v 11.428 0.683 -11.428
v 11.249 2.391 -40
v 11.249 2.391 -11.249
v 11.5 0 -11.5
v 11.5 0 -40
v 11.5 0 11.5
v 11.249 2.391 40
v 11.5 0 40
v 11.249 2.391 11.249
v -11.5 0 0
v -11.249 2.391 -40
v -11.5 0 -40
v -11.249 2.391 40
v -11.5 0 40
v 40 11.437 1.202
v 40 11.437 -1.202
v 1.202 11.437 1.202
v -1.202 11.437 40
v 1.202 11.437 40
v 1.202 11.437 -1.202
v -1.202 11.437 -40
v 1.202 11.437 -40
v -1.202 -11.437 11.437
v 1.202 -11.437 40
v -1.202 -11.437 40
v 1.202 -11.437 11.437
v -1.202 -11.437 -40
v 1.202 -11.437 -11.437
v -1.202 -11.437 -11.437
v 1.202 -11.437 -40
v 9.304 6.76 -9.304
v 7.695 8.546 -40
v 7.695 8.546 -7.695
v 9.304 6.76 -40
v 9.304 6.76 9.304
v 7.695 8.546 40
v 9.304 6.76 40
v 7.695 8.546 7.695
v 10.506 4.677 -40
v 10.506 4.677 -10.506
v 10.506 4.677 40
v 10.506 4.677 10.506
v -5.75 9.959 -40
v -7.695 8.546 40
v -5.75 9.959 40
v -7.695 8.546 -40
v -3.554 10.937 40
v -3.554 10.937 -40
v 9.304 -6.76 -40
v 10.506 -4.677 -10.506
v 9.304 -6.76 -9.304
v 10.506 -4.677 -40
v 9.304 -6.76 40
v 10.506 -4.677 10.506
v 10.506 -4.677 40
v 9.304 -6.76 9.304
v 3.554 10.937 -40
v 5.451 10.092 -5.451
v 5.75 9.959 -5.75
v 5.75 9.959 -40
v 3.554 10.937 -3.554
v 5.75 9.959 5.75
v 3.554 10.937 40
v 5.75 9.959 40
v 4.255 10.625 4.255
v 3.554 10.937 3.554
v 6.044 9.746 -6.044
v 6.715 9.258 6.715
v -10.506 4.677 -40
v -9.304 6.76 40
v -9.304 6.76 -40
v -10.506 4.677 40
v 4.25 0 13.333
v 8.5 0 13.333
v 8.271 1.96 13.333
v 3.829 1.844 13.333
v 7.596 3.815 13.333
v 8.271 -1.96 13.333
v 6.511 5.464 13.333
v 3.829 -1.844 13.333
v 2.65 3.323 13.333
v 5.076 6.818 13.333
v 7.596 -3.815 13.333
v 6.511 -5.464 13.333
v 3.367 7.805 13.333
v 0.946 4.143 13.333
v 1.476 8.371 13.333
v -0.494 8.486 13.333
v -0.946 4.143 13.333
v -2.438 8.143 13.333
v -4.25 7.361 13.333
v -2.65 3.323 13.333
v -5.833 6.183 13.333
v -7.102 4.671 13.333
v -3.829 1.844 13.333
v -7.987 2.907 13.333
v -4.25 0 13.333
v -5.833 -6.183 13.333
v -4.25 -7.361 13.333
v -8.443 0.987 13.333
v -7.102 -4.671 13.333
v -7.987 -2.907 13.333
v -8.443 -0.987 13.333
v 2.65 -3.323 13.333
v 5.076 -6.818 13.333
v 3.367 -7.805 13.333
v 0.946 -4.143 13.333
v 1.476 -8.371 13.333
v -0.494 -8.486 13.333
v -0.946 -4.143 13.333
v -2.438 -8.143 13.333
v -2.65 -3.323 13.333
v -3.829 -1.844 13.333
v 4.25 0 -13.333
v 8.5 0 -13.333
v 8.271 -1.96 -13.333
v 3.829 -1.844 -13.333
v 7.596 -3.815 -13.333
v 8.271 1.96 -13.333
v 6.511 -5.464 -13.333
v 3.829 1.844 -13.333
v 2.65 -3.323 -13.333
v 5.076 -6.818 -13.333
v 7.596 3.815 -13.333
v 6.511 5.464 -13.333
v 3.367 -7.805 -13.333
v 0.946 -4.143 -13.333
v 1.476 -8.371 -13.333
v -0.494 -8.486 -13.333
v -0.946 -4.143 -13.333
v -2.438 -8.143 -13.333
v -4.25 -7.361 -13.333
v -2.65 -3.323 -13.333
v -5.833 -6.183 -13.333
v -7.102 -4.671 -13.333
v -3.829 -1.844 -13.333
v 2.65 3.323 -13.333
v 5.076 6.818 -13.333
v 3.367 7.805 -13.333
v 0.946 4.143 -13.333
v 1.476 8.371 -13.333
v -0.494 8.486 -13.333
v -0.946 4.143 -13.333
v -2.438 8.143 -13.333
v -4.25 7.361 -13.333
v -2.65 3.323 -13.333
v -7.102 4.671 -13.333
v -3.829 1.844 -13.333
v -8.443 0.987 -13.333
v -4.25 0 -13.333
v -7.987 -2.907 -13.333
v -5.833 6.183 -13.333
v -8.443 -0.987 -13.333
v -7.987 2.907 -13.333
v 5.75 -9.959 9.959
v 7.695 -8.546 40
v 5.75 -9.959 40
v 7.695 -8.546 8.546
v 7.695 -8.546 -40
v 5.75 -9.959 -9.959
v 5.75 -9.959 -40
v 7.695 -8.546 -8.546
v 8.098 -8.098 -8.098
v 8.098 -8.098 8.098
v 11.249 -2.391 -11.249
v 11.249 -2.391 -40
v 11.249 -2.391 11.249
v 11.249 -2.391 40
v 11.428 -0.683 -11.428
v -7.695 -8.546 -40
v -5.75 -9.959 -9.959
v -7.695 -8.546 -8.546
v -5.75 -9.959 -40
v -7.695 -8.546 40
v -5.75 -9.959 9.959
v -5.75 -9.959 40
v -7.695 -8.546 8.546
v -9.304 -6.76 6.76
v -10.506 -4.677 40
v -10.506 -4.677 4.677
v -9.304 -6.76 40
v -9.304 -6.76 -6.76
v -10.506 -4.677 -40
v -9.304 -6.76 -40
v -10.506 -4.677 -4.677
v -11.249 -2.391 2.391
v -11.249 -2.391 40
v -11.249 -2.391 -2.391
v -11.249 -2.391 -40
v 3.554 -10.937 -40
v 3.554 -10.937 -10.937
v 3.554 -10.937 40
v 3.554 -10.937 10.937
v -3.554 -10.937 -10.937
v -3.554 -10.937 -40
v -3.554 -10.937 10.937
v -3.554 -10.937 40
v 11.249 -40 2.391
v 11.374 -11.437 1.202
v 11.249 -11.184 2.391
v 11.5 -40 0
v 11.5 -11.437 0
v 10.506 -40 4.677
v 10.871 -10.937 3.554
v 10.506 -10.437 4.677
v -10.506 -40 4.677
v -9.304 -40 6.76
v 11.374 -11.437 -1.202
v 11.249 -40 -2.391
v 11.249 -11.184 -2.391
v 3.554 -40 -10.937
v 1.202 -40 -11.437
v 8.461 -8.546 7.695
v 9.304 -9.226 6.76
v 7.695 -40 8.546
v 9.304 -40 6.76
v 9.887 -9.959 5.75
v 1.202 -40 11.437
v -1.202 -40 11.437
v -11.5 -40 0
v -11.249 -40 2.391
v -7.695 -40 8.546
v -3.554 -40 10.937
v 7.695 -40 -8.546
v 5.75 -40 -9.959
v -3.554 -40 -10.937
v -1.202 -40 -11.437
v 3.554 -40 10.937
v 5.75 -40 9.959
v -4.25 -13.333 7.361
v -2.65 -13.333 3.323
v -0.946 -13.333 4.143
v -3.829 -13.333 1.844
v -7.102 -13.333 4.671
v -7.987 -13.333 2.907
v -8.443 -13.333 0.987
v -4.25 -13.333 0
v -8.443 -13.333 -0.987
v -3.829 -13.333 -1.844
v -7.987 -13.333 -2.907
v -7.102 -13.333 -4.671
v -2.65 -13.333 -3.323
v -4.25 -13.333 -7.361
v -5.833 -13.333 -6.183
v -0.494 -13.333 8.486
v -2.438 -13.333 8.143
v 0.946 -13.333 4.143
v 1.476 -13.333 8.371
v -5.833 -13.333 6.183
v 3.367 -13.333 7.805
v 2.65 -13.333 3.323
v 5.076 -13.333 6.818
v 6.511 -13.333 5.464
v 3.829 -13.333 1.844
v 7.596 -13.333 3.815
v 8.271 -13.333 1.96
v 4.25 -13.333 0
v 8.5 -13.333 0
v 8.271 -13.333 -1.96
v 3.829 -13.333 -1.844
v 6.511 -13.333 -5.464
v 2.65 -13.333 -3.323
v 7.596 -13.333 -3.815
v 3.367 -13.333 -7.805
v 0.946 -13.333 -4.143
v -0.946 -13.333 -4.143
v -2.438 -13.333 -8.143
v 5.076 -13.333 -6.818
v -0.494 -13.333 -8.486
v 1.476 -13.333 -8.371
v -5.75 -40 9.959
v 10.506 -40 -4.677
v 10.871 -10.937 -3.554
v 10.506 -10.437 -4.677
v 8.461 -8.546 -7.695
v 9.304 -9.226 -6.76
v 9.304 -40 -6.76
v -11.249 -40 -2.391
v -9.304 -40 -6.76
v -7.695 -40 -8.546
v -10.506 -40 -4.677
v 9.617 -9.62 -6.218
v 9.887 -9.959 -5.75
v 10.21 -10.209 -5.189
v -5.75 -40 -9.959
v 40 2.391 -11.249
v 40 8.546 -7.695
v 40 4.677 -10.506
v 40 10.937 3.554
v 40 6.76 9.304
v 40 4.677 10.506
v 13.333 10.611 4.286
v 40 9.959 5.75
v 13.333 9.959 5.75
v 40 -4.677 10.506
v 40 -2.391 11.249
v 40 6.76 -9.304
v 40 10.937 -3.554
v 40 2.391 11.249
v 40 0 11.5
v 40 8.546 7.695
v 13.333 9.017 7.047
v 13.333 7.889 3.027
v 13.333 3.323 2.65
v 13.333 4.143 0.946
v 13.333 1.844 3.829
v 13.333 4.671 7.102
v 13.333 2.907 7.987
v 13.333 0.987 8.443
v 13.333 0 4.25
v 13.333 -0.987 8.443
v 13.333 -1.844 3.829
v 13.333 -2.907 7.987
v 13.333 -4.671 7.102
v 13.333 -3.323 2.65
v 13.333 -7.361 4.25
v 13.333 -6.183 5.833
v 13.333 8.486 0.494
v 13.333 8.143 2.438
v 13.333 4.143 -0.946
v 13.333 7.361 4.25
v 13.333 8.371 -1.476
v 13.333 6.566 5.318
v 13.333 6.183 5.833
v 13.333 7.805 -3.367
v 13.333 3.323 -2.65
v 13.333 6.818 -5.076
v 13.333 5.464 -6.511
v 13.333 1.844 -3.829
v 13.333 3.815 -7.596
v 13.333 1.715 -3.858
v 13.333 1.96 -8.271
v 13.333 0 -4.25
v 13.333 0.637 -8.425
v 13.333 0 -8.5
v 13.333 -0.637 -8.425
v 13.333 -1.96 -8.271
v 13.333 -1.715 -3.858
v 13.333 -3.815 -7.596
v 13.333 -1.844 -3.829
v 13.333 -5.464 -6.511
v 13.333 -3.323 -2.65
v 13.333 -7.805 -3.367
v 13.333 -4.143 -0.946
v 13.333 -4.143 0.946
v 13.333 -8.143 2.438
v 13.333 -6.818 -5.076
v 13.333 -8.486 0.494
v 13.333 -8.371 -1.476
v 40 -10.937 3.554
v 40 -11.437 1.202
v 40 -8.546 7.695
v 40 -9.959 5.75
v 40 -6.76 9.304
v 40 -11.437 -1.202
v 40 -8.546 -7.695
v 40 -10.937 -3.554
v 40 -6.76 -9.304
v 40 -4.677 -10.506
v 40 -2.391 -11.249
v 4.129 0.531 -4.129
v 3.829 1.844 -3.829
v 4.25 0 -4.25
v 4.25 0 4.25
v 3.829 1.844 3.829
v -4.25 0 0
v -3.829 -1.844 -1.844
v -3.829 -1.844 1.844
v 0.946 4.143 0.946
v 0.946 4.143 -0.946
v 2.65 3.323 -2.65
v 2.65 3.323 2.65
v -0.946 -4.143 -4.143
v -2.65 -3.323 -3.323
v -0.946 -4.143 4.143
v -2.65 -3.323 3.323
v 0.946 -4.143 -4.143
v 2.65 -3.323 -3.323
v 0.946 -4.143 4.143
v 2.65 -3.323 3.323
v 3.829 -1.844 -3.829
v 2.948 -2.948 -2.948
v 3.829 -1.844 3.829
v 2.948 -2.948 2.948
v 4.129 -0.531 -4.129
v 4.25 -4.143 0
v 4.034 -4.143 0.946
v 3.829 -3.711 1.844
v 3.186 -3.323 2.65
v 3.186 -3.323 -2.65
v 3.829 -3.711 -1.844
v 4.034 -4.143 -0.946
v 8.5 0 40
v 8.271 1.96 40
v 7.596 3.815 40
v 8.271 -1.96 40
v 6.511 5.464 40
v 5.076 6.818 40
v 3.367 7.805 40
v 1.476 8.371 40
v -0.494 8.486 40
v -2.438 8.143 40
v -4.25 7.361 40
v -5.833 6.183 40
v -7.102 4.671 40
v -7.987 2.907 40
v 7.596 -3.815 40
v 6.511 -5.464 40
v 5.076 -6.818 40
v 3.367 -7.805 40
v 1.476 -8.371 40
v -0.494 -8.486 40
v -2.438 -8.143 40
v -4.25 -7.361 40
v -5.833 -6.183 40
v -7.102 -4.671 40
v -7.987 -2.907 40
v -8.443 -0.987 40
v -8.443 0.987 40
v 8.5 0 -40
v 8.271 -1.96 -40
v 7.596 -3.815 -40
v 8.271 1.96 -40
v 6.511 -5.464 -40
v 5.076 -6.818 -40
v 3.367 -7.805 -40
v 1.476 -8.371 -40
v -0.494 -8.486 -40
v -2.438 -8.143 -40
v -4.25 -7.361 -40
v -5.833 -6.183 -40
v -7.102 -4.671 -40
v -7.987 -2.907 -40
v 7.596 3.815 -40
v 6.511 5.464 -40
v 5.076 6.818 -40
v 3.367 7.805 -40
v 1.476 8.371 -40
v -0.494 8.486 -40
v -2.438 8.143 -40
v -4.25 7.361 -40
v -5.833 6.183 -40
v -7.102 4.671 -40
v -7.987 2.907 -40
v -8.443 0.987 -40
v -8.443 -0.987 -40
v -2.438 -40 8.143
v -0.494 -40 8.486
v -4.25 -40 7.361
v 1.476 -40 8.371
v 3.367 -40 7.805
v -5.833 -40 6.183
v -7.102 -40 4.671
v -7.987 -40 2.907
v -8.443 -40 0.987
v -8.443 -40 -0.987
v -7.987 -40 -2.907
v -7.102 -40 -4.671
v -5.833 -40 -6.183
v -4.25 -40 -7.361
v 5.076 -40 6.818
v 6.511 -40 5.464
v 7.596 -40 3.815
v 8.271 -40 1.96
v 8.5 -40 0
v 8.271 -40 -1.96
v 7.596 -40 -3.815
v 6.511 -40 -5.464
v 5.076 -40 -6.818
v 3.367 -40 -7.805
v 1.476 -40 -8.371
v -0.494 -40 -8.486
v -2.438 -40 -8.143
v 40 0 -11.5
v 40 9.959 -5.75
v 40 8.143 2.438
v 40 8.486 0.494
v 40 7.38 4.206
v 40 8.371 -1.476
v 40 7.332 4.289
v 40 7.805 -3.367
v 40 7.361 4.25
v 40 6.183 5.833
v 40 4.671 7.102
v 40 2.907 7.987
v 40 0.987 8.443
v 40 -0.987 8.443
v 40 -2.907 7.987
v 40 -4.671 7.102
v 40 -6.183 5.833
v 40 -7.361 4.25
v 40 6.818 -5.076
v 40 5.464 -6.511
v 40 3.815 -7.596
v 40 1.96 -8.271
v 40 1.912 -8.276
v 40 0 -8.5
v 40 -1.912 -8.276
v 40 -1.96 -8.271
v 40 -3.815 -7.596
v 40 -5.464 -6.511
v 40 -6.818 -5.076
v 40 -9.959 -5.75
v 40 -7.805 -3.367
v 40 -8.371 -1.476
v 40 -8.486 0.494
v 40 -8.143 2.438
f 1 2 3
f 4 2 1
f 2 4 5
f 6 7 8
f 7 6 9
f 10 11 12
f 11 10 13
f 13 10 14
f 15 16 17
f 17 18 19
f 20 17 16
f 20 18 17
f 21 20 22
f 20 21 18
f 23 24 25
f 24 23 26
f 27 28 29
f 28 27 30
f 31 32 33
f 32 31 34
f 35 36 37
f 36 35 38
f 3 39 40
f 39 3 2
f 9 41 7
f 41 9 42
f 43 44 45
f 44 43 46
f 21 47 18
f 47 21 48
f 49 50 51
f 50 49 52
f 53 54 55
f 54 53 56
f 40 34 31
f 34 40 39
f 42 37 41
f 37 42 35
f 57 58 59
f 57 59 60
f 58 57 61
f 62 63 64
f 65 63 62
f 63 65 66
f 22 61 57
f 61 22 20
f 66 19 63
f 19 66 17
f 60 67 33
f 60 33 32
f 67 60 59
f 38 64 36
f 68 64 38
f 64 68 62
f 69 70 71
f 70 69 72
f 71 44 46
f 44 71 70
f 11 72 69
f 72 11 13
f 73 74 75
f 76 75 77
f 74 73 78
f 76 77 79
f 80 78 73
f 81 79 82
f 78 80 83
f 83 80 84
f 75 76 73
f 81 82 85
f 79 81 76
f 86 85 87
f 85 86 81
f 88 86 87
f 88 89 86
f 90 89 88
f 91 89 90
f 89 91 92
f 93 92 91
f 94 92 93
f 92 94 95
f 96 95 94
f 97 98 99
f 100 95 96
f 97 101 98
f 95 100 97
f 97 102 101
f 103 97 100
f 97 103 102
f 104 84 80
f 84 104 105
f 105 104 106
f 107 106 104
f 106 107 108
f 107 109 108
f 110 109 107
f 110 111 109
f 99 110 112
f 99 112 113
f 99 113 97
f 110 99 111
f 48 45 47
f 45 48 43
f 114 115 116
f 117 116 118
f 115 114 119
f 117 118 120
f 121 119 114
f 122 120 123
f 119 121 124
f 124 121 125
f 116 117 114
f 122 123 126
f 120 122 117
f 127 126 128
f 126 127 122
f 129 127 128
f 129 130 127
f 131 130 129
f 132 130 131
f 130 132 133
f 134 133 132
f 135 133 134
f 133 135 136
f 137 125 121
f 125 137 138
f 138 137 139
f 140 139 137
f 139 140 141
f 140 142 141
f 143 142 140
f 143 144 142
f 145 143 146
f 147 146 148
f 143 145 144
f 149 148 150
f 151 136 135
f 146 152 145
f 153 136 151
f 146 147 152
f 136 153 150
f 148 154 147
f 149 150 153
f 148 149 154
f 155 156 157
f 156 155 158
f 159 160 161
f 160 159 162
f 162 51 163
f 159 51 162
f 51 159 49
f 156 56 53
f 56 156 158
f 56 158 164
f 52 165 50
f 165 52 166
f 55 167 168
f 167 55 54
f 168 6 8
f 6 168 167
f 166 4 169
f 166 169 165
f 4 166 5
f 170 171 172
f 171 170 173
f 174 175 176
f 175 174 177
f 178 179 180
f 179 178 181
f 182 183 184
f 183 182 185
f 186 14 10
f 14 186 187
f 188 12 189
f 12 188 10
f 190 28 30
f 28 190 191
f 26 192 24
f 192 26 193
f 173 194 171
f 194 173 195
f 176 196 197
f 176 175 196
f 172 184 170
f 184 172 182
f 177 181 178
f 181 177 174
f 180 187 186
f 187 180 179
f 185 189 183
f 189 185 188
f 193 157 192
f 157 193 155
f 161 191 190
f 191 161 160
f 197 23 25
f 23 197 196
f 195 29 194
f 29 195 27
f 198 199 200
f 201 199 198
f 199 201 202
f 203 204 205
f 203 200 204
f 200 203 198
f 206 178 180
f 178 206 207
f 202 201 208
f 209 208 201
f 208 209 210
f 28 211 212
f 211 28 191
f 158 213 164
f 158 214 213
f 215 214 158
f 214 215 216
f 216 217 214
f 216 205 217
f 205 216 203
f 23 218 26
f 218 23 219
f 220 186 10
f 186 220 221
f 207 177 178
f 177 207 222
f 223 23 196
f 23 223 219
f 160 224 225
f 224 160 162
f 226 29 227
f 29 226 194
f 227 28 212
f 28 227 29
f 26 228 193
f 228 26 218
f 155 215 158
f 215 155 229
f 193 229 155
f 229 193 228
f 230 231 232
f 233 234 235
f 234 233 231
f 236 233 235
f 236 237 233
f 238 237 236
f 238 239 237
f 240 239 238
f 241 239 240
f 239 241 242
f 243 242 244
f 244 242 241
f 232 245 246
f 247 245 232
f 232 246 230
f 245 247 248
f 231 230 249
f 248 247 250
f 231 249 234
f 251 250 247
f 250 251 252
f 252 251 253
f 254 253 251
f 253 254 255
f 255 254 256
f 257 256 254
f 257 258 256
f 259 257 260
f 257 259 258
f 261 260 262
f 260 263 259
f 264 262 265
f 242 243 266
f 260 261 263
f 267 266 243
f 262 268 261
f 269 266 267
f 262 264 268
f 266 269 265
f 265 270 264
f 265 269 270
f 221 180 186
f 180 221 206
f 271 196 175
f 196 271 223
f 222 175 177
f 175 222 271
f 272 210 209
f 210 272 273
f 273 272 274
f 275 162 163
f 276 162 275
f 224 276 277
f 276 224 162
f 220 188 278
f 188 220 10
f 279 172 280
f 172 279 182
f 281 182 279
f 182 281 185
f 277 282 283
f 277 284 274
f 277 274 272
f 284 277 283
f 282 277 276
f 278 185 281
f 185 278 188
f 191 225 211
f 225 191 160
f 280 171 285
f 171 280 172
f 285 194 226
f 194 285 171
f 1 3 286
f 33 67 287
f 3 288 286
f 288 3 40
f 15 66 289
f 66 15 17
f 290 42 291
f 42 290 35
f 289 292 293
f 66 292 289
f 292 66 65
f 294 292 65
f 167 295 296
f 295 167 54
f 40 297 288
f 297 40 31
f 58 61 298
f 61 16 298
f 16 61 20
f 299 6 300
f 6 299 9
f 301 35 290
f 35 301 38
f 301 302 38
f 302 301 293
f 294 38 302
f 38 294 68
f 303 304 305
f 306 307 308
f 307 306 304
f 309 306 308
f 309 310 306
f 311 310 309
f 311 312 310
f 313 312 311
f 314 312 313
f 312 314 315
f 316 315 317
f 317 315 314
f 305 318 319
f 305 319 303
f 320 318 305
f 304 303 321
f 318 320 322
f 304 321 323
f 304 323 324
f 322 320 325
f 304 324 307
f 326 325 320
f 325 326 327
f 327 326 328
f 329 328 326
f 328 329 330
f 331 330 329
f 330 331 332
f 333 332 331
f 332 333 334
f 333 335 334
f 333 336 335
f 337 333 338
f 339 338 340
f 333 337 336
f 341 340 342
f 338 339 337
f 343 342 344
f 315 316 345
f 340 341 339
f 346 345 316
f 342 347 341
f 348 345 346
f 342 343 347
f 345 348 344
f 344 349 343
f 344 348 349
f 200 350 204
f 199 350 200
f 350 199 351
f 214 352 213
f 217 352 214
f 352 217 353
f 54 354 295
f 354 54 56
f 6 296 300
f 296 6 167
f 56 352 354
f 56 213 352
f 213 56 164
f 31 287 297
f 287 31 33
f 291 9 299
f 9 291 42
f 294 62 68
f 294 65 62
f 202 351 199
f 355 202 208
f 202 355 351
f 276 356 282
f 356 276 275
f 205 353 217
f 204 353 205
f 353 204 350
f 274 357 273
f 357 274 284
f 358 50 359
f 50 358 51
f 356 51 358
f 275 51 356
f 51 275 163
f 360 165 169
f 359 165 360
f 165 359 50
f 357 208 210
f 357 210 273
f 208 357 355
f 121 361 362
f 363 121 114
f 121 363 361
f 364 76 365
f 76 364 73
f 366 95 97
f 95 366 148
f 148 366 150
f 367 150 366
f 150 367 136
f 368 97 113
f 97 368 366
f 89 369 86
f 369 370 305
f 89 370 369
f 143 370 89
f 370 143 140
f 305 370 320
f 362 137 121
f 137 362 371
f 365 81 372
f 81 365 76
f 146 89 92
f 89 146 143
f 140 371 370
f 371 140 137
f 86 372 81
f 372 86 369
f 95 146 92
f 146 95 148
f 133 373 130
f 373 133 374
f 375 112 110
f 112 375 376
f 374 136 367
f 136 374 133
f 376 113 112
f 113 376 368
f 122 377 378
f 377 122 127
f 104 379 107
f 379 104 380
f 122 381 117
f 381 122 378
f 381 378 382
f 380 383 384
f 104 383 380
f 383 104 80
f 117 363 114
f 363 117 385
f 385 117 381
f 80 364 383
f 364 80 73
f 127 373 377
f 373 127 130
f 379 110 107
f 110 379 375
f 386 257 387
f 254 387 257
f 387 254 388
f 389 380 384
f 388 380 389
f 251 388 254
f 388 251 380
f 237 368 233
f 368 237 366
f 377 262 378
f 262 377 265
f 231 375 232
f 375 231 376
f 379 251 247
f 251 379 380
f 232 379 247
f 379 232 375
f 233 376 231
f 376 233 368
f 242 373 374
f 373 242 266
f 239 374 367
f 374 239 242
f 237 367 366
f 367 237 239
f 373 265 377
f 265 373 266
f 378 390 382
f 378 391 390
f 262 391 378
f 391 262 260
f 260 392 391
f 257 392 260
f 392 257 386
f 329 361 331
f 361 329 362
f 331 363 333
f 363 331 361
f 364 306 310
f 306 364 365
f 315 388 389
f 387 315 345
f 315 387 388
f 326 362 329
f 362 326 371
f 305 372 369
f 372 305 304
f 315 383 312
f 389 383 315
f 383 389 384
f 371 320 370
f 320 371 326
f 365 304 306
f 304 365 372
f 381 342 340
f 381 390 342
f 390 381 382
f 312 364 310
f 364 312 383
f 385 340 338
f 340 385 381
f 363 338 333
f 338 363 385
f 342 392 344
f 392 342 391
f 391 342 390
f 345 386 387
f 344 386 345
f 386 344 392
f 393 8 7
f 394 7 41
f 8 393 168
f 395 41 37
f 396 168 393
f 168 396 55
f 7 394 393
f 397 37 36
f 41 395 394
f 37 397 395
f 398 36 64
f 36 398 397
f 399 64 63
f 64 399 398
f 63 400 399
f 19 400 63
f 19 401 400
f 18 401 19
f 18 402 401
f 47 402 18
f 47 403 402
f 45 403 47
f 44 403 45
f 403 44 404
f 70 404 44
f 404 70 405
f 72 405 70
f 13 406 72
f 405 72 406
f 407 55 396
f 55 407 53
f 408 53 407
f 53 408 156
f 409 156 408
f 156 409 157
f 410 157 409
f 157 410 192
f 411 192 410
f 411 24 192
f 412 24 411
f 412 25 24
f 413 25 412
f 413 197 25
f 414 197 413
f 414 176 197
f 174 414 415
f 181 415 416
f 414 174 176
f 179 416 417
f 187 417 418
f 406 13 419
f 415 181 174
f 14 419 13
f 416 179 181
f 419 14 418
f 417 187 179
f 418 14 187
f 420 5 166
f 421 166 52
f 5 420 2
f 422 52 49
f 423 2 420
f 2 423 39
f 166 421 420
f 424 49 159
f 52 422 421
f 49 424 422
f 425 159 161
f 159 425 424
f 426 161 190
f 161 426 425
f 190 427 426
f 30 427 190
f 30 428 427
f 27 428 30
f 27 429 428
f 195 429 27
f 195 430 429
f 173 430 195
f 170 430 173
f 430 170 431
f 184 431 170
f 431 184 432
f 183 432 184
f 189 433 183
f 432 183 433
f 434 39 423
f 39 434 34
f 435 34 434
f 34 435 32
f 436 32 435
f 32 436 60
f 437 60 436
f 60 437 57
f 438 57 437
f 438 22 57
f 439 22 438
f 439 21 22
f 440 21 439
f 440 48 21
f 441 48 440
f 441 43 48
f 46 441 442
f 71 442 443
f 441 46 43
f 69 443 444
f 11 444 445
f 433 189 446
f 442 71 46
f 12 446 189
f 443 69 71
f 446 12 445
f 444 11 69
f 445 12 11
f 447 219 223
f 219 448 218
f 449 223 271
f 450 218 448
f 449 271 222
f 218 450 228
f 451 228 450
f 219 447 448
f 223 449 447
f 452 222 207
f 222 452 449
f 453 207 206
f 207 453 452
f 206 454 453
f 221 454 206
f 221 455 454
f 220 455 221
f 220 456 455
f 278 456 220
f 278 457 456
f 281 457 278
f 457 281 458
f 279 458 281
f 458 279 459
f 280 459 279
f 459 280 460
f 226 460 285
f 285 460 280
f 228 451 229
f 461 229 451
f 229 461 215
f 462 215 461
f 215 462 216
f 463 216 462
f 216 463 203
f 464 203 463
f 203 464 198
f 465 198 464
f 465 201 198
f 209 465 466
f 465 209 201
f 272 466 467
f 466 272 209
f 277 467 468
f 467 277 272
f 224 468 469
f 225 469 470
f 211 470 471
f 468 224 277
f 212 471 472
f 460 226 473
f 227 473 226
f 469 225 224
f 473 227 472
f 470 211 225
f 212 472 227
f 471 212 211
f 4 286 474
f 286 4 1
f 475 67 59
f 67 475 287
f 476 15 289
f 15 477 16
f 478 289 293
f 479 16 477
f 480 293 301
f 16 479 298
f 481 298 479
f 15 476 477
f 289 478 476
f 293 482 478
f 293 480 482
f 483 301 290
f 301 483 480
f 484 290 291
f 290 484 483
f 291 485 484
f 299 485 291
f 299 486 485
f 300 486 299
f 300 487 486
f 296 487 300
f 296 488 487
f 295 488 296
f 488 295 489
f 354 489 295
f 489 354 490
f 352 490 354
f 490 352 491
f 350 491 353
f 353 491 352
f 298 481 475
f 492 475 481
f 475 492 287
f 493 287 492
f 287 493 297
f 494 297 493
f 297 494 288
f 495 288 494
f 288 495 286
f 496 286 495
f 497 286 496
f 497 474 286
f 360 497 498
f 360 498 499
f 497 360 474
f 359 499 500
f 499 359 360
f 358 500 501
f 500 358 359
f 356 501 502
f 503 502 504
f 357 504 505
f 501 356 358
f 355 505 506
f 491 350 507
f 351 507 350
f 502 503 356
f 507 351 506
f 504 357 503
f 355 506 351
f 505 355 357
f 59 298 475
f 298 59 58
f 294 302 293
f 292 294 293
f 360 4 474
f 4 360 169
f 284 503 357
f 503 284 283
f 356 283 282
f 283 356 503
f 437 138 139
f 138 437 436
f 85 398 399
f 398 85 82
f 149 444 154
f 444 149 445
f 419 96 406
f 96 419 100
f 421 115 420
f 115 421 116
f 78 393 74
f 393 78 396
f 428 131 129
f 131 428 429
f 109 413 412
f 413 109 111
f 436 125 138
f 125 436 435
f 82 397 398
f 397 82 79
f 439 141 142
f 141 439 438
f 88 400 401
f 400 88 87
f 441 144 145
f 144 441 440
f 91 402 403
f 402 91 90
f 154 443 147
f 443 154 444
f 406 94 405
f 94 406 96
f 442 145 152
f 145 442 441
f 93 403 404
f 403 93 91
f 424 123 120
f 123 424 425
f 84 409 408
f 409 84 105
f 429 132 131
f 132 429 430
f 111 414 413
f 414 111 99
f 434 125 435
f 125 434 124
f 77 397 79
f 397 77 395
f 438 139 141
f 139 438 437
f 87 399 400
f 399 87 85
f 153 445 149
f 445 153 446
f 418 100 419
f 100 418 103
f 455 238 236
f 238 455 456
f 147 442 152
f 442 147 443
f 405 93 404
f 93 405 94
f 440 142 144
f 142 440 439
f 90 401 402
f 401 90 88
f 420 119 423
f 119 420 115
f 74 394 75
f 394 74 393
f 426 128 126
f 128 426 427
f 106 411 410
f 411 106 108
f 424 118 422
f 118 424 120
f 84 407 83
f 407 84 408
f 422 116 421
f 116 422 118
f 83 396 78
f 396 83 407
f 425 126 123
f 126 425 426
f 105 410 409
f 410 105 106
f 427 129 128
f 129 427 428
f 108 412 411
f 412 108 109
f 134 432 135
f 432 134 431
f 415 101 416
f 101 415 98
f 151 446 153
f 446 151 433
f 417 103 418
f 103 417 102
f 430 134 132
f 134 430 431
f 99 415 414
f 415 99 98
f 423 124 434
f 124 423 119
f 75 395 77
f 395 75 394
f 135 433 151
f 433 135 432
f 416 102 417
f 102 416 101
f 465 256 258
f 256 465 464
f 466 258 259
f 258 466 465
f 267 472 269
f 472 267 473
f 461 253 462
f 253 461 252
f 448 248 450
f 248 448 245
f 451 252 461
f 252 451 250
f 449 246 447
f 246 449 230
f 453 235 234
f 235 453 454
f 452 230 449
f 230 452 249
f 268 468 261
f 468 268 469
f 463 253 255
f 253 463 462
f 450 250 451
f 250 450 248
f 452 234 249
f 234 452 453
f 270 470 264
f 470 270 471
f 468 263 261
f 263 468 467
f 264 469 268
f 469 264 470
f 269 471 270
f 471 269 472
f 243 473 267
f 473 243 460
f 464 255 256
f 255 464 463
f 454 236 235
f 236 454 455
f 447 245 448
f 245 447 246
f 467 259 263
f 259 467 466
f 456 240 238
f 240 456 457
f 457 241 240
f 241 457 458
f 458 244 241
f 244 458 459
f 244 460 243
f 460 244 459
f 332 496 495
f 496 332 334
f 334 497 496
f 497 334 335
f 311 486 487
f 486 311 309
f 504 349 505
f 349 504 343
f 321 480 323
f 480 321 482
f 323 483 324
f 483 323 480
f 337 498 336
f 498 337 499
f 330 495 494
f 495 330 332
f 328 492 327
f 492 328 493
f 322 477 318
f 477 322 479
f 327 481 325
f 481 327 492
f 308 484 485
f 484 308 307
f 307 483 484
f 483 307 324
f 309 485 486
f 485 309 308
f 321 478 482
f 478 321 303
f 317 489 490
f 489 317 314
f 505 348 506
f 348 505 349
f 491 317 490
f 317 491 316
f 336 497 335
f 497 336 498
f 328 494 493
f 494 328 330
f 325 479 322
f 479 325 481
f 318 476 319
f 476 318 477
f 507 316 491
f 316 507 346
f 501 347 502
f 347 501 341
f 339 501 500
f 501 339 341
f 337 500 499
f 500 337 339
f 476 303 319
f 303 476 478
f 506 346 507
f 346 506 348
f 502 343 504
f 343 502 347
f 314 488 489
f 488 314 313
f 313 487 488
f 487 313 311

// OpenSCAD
// file: four-way-connector.scad
module four_way_connector(diameter, thickness, length)
{
	outer_radius = (diameter + (thickness * 2)) / 2;
	inner_radius = outer_radius - thickness;

	union() {
		difference() {
            // Outer cylinders
			union() {
				cylinder(r = outer_radius, h = length * 2, center = true);
				rotate([90, 0, 0]) cylinder(r = outer_radius, h = length, center = false);
				rotate([0, 90, 0]) cylinder(r = outer_radius, h = length, center = false);
			}

            // Inner cylinders - to hollow out the outer ones
			cylinder(r = inner_radius, h = (length * 2 + 1), center = true);
			rotate([90, 0, 0]) cylinder(r = inner_radius, h = (length + 1), center = false);
			rotate([0, 90, 0]) cylinder(r = inner_radius, h = (length + 1), center = false);
		}
	}
}

four_way_connector(17, 3, 40);
// main file
use <four-way-connector.scad>;

module four_way_connector_with_stops(diameter, thickness, length)
{
    outer_shell_diameter = diameter + (thickness * 2);
    stop_diameter = (diameter / 2);
    stop_thickness = (outer_shell_diameter - stop_diameter) / 2;
    
    union() {
        // Inner stops
        four_way_connector(stop_diameter, stop_thickness, length / 3);
        // Connector hull
        four_way_connector(diameter, thickness, length);
    }
}

four_way_connector_with_stops(17, 3, 40);
